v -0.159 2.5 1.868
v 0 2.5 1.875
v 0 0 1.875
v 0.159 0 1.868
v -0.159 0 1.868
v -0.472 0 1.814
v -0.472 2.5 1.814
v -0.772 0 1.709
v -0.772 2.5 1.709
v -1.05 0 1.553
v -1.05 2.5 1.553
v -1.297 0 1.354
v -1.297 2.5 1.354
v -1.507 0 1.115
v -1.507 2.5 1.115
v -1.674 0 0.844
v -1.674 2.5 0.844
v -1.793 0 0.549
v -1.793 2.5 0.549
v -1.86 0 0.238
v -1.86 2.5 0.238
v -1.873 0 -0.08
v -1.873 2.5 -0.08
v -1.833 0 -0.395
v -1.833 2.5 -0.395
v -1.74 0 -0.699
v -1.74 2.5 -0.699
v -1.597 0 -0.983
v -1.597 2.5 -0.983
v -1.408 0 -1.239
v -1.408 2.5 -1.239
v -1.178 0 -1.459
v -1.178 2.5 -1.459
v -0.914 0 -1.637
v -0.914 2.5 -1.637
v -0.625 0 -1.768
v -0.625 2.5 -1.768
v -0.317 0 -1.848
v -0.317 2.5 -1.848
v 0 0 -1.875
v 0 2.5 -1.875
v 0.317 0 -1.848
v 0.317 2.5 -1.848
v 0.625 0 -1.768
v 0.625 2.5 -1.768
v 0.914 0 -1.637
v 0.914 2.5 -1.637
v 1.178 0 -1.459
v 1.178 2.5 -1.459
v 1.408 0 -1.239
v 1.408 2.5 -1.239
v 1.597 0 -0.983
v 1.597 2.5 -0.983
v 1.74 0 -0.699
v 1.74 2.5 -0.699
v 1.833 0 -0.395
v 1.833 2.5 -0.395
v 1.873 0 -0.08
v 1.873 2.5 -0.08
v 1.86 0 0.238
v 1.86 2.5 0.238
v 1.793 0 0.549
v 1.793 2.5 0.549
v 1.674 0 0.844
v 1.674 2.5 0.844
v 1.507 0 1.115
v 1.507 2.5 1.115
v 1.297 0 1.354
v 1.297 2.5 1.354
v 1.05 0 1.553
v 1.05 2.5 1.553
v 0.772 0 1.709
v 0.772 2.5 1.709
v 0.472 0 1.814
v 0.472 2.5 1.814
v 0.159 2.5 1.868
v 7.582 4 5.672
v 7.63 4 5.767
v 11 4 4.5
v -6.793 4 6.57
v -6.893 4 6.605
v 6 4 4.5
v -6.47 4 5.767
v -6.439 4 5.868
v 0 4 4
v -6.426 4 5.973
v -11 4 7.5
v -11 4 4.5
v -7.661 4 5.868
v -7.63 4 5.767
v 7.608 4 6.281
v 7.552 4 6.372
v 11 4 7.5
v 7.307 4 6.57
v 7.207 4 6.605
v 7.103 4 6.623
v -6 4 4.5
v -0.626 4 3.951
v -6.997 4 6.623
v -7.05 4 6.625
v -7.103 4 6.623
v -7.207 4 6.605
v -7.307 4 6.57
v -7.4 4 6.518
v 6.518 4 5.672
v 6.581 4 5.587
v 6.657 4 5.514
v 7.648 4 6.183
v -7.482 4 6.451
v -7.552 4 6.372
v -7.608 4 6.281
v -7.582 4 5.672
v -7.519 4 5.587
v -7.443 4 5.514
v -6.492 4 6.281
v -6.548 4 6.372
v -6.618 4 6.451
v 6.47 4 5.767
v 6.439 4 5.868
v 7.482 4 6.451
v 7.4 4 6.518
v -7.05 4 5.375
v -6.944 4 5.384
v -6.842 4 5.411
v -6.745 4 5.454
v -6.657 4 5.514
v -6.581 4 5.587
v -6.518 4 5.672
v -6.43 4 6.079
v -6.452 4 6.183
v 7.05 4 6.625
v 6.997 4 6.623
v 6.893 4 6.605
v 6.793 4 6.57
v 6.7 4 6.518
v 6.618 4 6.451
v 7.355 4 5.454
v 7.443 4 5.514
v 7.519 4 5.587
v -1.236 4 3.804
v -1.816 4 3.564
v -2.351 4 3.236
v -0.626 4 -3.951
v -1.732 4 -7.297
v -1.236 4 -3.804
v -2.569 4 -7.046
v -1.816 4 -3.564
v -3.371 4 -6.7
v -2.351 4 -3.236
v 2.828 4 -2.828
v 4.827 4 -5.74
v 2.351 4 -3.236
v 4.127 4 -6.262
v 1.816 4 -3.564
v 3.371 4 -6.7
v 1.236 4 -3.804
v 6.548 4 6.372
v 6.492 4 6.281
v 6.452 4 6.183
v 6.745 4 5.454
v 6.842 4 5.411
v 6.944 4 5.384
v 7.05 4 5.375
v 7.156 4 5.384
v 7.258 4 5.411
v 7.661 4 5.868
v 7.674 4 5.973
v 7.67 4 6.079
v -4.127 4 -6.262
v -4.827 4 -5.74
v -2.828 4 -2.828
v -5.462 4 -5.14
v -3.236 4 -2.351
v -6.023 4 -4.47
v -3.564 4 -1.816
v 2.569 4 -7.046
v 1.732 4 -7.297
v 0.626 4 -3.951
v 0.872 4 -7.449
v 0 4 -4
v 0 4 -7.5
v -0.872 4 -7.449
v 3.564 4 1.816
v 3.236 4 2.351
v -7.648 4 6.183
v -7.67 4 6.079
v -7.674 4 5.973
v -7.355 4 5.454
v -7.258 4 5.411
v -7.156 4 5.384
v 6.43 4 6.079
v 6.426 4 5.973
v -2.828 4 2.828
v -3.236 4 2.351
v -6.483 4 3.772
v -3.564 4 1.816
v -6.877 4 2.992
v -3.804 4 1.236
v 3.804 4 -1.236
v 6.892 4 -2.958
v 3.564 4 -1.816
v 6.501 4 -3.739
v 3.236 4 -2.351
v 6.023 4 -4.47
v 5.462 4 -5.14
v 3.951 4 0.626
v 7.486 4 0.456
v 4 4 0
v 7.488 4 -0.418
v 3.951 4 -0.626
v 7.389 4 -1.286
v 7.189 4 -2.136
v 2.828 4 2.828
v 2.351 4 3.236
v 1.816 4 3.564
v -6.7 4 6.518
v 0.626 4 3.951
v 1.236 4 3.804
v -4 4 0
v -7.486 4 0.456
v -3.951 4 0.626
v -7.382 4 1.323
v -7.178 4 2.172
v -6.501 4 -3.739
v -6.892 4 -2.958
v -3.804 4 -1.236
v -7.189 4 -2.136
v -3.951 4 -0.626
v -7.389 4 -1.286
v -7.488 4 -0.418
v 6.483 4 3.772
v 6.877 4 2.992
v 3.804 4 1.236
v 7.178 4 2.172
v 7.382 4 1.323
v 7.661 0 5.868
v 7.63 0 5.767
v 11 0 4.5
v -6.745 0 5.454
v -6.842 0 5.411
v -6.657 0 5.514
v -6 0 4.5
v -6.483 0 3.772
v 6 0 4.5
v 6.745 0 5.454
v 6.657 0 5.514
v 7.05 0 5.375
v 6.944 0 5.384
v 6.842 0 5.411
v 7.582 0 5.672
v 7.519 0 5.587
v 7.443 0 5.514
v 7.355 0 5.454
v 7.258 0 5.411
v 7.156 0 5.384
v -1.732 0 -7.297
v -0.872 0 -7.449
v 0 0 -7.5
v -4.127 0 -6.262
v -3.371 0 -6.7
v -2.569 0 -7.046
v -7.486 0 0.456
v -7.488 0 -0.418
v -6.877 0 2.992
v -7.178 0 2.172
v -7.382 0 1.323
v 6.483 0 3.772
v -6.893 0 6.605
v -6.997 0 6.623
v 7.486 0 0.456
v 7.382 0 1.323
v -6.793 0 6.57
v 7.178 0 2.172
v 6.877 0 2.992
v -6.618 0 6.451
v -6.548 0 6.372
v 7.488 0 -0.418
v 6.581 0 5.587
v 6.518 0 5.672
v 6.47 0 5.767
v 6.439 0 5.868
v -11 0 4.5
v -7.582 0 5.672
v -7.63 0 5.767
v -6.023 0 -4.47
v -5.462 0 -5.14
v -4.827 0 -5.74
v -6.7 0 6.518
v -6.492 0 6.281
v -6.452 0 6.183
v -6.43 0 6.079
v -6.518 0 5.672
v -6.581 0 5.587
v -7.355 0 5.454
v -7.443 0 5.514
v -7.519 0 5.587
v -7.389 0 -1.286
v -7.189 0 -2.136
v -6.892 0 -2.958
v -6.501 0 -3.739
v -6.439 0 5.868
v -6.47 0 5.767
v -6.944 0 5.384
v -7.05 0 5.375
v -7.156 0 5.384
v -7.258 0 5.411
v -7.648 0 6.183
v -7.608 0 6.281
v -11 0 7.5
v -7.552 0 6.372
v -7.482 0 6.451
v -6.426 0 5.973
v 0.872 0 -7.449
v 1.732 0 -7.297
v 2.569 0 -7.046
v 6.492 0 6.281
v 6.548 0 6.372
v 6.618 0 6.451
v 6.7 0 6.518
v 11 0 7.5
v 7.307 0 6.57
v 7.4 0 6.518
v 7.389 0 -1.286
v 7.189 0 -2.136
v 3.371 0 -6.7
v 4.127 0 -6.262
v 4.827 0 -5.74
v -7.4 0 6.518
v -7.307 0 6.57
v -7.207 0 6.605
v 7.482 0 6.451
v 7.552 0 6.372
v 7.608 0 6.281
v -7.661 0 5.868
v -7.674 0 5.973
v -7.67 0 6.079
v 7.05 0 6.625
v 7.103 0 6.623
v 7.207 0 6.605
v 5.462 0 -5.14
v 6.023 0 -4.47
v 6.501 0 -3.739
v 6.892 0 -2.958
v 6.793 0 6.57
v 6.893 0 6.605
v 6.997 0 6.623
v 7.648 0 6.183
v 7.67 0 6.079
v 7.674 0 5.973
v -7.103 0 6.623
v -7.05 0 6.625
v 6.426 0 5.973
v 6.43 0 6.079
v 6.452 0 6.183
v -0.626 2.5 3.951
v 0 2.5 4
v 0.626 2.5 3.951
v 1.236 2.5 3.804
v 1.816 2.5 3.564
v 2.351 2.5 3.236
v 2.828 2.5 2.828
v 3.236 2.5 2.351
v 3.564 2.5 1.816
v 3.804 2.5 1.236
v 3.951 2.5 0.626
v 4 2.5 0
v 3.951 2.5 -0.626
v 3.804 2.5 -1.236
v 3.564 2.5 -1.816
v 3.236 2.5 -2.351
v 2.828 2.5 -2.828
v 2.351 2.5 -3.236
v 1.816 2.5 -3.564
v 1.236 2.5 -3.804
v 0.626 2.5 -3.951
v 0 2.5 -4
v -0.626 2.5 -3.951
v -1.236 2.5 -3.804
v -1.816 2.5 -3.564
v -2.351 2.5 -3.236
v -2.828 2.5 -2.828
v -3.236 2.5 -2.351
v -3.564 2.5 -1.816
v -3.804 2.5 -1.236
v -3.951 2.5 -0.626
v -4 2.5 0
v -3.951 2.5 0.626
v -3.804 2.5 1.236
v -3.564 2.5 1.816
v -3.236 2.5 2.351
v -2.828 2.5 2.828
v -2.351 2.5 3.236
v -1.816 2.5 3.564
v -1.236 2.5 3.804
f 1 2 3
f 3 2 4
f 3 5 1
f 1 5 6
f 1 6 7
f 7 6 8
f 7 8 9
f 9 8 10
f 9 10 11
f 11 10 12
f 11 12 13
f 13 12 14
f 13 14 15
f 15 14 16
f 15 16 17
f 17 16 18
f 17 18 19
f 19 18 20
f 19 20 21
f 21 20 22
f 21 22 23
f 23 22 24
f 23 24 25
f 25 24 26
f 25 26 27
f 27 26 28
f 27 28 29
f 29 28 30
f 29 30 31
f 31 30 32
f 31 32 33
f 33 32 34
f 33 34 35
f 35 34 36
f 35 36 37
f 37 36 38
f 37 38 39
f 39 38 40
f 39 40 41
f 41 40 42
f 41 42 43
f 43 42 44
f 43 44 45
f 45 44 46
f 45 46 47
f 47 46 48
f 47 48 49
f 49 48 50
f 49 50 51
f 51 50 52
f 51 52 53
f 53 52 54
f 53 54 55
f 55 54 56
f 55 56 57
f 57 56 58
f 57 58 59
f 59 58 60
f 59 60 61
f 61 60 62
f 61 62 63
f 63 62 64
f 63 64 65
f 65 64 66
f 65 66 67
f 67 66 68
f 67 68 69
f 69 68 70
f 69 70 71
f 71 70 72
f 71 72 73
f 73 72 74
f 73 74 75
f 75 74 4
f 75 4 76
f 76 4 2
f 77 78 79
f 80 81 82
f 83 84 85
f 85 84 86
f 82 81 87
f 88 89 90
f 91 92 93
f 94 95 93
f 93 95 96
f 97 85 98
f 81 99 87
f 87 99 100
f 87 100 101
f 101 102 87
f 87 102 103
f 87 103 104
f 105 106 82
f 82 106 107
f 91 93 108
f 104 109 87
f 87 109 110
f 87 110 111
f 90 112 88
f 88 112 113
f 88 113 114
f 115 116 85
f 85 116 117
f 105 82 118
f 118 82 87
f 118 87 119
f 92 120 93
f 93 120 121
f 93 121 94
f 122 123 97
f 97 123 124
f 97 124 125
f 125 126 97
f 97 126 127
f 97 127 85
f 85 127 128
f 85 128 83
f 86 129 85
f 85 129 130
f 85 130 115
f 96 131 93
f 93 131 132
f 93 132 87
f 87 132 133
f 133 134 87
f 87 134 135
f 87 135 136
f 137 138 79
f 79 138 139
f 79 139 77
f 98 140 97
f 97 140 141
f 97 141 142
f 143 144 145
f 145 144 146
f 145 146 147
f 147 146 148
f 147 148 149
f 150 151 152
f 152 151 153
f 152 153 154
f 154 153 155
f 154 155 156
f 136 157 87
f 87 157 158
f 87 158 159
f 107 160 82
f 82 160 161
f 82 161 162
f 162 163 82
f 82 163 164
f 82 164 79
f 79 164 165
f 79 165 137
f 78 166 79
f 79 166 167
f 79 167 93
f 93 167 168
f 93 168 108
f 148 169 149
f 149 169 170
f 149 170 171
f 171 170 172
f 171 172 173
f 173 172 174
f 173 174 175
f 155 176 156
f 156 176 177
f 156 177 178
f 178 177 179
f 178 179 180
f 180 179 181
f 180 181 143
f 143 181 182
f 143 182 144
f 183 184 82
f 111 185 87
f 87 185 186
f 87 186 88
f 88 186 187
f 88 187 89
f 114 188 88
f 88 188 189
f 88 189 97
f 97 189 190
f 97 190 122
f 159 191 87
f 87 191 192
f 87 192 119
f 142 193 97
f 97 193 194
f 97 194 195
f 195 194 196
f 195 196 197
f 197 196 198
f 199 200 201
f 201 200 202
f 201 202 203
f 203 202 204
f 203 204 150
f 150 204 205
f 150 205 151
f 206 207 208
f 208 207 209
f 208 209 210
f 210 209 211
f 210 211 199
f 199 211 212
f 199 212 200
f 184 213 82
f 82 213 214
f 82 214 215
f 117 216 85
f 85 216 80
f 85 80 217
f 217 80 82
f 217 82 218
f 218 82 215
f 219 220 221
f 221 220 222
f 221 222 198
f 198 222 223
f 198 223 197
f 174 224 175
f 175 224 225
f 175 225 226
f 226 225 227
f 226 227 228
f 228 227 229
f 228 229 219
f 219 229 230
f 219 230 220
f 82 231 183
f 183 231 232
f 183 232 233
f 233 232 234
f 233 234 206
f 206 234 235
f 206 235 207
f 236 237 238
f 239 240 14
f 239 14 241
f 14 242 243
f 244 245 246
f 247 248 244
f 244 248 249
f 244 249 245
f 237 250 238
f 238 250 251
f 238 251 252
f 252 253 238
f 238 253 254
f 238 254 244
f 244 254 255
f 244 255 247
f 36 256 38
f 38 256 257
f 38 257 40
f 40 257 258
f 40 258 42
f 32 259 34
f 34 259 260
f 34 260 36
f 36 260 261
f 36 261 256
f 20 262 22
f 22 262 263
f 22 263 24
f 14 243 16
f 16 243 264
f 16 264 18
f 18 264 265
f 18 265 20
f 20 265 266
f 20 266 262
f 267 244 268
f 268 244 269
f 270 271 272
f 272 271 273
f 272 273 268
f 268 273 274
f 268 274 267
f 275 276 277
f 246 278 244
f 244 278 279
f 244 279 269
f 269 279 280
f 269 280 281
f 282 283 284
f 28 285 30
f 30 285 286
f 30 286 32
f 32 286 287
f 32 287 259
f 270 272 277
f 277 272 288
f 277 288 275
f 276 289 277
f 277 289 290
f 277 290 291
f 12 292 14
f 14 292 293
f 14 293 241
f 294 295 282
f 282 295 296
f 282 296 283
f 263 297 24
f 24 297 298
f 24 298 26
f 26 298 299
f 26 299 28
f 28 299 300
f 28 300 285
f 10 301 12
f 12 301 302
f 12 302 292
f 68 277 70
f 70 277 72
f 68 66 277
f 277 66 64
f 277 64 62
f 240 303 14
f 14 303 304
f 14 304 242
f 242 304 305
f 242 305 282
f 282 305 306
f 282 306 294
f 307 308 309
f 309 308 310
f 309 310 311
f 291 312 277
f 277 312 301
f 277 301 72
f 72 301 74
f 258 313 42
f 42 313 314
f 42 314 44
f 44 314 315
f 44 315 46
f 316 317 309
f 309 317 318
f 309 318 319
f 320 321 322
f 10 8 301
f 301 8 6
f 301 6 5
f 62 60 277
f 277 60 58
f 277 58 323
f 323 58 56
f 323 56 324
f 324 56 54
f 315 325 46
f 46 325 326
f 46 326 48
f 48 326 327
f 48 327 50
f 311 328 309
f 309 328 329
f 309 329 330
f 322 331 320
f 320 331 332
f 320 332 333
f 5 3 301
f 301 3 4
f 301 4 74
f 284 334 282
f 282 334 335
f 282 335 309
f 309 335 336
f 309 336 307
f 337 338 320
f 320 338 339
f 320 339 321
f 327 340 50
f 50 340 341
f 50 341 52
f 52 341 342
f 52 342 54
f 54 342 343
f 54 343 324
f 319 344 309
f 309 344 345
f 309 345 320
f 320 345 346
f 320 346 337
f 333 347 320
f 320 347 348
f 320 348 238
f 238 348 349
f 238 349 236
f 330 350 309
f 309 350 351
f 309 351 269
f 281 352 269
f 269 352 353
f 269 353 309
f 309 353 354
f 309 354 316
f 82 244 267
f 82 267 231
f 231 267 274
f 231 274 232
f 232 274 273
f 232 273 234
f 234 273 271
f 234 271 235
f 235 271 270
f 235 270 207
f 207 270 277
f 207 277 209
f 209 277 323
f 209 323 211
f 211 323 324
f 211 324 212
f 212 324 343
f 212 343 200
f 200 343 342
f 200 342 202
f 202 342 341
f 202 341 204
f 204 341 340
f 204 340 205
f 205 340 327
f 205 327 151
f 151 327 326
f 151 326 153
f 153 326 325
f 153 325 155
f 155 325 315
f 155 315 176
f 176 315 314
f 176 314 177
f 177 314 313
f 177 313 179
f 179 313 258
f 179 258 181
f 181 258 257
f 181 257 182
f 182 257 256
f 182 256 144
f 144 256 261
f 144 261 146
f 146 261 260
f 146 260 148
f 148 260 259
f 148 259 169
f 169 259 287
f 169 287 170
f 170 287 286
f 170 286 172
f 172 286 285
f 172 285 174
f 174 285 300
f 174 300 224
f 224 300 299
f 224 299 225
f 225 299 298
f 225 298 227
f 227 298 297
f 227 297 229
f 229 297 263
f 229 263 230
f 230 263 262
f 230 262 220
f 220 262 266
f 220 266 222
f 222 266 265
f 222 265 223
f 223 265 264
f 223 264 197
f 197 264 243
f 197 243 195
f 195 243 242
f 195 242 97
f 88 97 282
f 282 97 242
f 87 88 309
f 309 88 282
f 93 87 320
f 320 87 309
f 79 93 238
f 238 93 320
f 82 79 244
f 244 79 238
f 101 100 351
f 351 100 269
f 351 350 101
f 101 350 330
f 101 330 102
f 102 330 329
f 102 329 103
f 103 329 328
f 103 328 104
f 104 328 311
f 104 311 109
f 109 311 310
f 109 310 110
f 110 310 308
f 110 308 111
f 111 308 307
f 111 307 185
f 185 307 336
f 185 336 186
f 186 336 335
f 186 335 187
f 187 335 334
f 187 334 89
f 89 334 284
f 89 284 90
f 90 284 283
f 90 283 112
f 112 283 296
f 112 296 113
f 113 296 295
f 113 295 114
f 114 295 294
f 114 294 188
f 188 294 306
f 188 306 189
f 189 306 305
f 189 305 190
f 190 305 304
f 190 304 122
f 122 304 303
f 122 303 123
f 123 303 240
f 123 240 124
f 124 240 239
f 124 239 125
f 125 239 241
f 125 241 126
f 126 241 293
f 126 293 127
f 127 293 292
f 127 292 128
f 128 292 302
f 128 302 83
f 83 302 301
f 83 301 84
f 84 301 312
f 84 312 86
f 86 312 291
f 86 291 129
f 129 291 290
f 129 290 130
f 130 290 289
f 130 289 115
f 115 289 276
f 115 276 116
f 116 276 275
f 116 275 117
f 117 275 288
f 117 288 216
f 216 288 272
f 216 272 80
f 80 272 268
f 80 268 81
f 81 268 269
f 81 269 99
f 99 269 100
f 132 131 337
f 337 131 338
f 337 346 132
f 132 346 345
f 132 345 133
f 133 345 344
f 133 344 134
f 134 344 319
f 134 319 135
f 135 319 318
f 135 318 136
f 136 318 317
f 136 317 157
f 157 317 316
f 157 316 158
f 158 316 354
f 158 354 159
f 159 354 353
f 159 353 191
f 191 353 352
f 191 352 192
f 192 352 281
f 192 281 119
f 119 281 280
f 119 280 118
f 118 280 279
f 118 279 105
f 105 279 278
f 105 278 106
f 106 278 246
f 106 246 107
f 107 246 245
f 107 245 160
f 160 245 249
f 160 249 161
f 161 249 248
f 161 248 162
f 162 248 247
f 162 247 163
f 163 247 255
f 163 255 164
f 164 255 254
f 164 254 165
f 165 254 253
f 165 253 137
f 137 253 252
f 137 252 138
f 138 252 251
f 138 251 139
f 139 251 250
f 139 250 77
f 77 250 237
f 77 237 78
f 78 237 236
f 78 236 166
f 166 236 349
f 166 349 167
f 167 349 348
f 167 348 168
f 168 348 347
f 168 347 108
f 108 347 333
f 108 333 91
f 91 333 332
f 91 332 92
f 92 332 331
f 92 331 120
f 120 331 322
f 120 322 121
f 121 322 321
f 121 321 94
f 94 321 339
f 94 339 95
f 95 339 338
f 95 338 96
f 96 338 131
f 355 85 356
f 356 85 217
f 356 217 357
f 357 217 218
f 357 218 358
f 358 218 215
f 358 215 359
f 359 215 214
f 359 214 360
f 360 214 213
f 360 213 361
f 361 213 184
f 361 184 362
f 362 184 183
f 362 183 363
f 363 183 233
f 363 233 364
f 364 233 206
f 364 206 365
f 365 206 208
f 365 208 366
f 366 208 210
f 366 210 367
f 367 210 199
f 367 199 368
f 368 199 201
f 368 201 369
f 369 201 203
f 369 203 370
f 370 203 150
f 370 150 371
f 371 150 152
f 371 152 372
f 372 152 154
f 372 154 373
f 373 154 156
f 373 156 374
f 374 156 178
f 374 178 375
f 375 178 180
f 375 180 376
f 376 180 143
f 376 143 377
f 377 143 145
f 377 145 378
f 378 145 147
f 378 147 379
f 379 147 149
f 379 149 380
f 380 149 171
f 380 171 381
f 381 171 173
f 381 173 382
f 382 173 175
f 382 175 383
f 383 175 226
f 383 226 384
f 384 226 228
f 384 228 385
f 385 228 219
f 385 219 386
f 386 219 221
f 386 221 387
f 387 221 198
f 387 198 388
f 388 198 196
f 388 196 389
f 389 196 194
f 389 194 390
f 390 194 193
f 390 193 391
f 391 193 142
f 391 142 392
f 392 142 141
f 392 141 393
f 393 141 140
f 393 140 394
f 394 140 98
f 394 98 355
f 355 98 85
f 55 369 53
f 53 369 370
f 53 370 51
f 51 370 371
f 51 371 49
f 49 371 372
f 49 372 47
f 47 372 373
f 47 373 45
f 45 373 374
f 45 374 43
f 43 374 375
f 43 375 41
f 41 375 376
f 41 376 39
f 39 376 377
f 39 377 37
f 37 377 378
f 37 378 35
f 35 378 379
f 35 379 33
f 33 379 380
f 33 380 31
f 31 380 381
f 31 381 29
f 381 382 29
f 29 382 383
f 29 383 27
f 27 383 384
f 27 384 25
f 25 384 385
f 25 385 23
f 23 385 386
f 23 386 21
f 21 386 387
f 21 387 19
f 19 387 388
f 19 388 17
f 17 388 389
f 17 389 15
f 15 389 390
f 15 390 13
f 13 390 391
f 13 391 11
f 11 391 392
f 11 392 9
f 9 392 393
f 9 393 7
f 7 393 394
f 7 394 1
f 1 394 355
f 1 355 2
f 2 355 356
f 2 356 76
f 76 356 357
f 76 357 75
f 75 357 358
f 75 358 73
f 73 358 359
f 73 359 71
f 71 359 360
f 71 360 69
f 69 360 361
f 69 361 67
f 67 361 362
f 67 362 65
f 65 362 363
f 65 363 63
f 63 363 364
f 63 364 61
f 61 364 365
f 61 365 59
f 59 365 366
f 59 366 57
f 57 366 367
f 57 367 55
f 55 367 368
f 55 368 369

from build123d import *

# Parameters (mm, degrees)
SKETCH1_R           = 0.625
SKETCH1_R_2         = 1.875
BOSS_EXTRUDE1_DEPTH = 4
SKETCH2_R           = 4
CUT_EXTRUDE1_DEPTH  = 1.5


with BuildPart() as part:
    # Sketch1 → Boss-Extrude1 (new body)
    with BuildSketch(Plane(origin=(0, 0, 0), x_dir=(1, 0, 0), z_dir=(0, 1, 0))):
        with BuildLine():
            Line((-6, -4.5), (-11, -4.5))
            Line((-11, -4.5), (-11, -7.5))
            Line((-11, -7.5), (11, -7.5))
            Line((11, -7.5), (11, -4.5))
            Line((11, -4.5), (6, -4.5))
            ThreePointArc((6, -4.5), (0, 7.5), (-6, -4.5))
        make_face()
        with Locations((-7.05, -6)):
            Circle(SKETCH1_R, mode=Mode.SUBTRACT)
        with Locations((7.05, -6)):
            Circle(SKETCH1_R, mode=Mode.SUBTRACT)
        Circle(SKETCH1_R_2, mode=Mode.SUBTRACT)
    extrude(amount=BOSS_EXTRUDE1_DEPTH)

    # Sketch2 → Cut-Extrude1 (cut)
    with BuildSketch(Plane(origin=(0, 4, 0), x_dir=(1, 0, 0), z_dir=(0, 1, 0))):
        Circle(SKETCH2_R)
    extrude(amount=-CUT_EXTRUDE1_DEPTH, mode=Mode.SUBTRACT)


solid = part.part
